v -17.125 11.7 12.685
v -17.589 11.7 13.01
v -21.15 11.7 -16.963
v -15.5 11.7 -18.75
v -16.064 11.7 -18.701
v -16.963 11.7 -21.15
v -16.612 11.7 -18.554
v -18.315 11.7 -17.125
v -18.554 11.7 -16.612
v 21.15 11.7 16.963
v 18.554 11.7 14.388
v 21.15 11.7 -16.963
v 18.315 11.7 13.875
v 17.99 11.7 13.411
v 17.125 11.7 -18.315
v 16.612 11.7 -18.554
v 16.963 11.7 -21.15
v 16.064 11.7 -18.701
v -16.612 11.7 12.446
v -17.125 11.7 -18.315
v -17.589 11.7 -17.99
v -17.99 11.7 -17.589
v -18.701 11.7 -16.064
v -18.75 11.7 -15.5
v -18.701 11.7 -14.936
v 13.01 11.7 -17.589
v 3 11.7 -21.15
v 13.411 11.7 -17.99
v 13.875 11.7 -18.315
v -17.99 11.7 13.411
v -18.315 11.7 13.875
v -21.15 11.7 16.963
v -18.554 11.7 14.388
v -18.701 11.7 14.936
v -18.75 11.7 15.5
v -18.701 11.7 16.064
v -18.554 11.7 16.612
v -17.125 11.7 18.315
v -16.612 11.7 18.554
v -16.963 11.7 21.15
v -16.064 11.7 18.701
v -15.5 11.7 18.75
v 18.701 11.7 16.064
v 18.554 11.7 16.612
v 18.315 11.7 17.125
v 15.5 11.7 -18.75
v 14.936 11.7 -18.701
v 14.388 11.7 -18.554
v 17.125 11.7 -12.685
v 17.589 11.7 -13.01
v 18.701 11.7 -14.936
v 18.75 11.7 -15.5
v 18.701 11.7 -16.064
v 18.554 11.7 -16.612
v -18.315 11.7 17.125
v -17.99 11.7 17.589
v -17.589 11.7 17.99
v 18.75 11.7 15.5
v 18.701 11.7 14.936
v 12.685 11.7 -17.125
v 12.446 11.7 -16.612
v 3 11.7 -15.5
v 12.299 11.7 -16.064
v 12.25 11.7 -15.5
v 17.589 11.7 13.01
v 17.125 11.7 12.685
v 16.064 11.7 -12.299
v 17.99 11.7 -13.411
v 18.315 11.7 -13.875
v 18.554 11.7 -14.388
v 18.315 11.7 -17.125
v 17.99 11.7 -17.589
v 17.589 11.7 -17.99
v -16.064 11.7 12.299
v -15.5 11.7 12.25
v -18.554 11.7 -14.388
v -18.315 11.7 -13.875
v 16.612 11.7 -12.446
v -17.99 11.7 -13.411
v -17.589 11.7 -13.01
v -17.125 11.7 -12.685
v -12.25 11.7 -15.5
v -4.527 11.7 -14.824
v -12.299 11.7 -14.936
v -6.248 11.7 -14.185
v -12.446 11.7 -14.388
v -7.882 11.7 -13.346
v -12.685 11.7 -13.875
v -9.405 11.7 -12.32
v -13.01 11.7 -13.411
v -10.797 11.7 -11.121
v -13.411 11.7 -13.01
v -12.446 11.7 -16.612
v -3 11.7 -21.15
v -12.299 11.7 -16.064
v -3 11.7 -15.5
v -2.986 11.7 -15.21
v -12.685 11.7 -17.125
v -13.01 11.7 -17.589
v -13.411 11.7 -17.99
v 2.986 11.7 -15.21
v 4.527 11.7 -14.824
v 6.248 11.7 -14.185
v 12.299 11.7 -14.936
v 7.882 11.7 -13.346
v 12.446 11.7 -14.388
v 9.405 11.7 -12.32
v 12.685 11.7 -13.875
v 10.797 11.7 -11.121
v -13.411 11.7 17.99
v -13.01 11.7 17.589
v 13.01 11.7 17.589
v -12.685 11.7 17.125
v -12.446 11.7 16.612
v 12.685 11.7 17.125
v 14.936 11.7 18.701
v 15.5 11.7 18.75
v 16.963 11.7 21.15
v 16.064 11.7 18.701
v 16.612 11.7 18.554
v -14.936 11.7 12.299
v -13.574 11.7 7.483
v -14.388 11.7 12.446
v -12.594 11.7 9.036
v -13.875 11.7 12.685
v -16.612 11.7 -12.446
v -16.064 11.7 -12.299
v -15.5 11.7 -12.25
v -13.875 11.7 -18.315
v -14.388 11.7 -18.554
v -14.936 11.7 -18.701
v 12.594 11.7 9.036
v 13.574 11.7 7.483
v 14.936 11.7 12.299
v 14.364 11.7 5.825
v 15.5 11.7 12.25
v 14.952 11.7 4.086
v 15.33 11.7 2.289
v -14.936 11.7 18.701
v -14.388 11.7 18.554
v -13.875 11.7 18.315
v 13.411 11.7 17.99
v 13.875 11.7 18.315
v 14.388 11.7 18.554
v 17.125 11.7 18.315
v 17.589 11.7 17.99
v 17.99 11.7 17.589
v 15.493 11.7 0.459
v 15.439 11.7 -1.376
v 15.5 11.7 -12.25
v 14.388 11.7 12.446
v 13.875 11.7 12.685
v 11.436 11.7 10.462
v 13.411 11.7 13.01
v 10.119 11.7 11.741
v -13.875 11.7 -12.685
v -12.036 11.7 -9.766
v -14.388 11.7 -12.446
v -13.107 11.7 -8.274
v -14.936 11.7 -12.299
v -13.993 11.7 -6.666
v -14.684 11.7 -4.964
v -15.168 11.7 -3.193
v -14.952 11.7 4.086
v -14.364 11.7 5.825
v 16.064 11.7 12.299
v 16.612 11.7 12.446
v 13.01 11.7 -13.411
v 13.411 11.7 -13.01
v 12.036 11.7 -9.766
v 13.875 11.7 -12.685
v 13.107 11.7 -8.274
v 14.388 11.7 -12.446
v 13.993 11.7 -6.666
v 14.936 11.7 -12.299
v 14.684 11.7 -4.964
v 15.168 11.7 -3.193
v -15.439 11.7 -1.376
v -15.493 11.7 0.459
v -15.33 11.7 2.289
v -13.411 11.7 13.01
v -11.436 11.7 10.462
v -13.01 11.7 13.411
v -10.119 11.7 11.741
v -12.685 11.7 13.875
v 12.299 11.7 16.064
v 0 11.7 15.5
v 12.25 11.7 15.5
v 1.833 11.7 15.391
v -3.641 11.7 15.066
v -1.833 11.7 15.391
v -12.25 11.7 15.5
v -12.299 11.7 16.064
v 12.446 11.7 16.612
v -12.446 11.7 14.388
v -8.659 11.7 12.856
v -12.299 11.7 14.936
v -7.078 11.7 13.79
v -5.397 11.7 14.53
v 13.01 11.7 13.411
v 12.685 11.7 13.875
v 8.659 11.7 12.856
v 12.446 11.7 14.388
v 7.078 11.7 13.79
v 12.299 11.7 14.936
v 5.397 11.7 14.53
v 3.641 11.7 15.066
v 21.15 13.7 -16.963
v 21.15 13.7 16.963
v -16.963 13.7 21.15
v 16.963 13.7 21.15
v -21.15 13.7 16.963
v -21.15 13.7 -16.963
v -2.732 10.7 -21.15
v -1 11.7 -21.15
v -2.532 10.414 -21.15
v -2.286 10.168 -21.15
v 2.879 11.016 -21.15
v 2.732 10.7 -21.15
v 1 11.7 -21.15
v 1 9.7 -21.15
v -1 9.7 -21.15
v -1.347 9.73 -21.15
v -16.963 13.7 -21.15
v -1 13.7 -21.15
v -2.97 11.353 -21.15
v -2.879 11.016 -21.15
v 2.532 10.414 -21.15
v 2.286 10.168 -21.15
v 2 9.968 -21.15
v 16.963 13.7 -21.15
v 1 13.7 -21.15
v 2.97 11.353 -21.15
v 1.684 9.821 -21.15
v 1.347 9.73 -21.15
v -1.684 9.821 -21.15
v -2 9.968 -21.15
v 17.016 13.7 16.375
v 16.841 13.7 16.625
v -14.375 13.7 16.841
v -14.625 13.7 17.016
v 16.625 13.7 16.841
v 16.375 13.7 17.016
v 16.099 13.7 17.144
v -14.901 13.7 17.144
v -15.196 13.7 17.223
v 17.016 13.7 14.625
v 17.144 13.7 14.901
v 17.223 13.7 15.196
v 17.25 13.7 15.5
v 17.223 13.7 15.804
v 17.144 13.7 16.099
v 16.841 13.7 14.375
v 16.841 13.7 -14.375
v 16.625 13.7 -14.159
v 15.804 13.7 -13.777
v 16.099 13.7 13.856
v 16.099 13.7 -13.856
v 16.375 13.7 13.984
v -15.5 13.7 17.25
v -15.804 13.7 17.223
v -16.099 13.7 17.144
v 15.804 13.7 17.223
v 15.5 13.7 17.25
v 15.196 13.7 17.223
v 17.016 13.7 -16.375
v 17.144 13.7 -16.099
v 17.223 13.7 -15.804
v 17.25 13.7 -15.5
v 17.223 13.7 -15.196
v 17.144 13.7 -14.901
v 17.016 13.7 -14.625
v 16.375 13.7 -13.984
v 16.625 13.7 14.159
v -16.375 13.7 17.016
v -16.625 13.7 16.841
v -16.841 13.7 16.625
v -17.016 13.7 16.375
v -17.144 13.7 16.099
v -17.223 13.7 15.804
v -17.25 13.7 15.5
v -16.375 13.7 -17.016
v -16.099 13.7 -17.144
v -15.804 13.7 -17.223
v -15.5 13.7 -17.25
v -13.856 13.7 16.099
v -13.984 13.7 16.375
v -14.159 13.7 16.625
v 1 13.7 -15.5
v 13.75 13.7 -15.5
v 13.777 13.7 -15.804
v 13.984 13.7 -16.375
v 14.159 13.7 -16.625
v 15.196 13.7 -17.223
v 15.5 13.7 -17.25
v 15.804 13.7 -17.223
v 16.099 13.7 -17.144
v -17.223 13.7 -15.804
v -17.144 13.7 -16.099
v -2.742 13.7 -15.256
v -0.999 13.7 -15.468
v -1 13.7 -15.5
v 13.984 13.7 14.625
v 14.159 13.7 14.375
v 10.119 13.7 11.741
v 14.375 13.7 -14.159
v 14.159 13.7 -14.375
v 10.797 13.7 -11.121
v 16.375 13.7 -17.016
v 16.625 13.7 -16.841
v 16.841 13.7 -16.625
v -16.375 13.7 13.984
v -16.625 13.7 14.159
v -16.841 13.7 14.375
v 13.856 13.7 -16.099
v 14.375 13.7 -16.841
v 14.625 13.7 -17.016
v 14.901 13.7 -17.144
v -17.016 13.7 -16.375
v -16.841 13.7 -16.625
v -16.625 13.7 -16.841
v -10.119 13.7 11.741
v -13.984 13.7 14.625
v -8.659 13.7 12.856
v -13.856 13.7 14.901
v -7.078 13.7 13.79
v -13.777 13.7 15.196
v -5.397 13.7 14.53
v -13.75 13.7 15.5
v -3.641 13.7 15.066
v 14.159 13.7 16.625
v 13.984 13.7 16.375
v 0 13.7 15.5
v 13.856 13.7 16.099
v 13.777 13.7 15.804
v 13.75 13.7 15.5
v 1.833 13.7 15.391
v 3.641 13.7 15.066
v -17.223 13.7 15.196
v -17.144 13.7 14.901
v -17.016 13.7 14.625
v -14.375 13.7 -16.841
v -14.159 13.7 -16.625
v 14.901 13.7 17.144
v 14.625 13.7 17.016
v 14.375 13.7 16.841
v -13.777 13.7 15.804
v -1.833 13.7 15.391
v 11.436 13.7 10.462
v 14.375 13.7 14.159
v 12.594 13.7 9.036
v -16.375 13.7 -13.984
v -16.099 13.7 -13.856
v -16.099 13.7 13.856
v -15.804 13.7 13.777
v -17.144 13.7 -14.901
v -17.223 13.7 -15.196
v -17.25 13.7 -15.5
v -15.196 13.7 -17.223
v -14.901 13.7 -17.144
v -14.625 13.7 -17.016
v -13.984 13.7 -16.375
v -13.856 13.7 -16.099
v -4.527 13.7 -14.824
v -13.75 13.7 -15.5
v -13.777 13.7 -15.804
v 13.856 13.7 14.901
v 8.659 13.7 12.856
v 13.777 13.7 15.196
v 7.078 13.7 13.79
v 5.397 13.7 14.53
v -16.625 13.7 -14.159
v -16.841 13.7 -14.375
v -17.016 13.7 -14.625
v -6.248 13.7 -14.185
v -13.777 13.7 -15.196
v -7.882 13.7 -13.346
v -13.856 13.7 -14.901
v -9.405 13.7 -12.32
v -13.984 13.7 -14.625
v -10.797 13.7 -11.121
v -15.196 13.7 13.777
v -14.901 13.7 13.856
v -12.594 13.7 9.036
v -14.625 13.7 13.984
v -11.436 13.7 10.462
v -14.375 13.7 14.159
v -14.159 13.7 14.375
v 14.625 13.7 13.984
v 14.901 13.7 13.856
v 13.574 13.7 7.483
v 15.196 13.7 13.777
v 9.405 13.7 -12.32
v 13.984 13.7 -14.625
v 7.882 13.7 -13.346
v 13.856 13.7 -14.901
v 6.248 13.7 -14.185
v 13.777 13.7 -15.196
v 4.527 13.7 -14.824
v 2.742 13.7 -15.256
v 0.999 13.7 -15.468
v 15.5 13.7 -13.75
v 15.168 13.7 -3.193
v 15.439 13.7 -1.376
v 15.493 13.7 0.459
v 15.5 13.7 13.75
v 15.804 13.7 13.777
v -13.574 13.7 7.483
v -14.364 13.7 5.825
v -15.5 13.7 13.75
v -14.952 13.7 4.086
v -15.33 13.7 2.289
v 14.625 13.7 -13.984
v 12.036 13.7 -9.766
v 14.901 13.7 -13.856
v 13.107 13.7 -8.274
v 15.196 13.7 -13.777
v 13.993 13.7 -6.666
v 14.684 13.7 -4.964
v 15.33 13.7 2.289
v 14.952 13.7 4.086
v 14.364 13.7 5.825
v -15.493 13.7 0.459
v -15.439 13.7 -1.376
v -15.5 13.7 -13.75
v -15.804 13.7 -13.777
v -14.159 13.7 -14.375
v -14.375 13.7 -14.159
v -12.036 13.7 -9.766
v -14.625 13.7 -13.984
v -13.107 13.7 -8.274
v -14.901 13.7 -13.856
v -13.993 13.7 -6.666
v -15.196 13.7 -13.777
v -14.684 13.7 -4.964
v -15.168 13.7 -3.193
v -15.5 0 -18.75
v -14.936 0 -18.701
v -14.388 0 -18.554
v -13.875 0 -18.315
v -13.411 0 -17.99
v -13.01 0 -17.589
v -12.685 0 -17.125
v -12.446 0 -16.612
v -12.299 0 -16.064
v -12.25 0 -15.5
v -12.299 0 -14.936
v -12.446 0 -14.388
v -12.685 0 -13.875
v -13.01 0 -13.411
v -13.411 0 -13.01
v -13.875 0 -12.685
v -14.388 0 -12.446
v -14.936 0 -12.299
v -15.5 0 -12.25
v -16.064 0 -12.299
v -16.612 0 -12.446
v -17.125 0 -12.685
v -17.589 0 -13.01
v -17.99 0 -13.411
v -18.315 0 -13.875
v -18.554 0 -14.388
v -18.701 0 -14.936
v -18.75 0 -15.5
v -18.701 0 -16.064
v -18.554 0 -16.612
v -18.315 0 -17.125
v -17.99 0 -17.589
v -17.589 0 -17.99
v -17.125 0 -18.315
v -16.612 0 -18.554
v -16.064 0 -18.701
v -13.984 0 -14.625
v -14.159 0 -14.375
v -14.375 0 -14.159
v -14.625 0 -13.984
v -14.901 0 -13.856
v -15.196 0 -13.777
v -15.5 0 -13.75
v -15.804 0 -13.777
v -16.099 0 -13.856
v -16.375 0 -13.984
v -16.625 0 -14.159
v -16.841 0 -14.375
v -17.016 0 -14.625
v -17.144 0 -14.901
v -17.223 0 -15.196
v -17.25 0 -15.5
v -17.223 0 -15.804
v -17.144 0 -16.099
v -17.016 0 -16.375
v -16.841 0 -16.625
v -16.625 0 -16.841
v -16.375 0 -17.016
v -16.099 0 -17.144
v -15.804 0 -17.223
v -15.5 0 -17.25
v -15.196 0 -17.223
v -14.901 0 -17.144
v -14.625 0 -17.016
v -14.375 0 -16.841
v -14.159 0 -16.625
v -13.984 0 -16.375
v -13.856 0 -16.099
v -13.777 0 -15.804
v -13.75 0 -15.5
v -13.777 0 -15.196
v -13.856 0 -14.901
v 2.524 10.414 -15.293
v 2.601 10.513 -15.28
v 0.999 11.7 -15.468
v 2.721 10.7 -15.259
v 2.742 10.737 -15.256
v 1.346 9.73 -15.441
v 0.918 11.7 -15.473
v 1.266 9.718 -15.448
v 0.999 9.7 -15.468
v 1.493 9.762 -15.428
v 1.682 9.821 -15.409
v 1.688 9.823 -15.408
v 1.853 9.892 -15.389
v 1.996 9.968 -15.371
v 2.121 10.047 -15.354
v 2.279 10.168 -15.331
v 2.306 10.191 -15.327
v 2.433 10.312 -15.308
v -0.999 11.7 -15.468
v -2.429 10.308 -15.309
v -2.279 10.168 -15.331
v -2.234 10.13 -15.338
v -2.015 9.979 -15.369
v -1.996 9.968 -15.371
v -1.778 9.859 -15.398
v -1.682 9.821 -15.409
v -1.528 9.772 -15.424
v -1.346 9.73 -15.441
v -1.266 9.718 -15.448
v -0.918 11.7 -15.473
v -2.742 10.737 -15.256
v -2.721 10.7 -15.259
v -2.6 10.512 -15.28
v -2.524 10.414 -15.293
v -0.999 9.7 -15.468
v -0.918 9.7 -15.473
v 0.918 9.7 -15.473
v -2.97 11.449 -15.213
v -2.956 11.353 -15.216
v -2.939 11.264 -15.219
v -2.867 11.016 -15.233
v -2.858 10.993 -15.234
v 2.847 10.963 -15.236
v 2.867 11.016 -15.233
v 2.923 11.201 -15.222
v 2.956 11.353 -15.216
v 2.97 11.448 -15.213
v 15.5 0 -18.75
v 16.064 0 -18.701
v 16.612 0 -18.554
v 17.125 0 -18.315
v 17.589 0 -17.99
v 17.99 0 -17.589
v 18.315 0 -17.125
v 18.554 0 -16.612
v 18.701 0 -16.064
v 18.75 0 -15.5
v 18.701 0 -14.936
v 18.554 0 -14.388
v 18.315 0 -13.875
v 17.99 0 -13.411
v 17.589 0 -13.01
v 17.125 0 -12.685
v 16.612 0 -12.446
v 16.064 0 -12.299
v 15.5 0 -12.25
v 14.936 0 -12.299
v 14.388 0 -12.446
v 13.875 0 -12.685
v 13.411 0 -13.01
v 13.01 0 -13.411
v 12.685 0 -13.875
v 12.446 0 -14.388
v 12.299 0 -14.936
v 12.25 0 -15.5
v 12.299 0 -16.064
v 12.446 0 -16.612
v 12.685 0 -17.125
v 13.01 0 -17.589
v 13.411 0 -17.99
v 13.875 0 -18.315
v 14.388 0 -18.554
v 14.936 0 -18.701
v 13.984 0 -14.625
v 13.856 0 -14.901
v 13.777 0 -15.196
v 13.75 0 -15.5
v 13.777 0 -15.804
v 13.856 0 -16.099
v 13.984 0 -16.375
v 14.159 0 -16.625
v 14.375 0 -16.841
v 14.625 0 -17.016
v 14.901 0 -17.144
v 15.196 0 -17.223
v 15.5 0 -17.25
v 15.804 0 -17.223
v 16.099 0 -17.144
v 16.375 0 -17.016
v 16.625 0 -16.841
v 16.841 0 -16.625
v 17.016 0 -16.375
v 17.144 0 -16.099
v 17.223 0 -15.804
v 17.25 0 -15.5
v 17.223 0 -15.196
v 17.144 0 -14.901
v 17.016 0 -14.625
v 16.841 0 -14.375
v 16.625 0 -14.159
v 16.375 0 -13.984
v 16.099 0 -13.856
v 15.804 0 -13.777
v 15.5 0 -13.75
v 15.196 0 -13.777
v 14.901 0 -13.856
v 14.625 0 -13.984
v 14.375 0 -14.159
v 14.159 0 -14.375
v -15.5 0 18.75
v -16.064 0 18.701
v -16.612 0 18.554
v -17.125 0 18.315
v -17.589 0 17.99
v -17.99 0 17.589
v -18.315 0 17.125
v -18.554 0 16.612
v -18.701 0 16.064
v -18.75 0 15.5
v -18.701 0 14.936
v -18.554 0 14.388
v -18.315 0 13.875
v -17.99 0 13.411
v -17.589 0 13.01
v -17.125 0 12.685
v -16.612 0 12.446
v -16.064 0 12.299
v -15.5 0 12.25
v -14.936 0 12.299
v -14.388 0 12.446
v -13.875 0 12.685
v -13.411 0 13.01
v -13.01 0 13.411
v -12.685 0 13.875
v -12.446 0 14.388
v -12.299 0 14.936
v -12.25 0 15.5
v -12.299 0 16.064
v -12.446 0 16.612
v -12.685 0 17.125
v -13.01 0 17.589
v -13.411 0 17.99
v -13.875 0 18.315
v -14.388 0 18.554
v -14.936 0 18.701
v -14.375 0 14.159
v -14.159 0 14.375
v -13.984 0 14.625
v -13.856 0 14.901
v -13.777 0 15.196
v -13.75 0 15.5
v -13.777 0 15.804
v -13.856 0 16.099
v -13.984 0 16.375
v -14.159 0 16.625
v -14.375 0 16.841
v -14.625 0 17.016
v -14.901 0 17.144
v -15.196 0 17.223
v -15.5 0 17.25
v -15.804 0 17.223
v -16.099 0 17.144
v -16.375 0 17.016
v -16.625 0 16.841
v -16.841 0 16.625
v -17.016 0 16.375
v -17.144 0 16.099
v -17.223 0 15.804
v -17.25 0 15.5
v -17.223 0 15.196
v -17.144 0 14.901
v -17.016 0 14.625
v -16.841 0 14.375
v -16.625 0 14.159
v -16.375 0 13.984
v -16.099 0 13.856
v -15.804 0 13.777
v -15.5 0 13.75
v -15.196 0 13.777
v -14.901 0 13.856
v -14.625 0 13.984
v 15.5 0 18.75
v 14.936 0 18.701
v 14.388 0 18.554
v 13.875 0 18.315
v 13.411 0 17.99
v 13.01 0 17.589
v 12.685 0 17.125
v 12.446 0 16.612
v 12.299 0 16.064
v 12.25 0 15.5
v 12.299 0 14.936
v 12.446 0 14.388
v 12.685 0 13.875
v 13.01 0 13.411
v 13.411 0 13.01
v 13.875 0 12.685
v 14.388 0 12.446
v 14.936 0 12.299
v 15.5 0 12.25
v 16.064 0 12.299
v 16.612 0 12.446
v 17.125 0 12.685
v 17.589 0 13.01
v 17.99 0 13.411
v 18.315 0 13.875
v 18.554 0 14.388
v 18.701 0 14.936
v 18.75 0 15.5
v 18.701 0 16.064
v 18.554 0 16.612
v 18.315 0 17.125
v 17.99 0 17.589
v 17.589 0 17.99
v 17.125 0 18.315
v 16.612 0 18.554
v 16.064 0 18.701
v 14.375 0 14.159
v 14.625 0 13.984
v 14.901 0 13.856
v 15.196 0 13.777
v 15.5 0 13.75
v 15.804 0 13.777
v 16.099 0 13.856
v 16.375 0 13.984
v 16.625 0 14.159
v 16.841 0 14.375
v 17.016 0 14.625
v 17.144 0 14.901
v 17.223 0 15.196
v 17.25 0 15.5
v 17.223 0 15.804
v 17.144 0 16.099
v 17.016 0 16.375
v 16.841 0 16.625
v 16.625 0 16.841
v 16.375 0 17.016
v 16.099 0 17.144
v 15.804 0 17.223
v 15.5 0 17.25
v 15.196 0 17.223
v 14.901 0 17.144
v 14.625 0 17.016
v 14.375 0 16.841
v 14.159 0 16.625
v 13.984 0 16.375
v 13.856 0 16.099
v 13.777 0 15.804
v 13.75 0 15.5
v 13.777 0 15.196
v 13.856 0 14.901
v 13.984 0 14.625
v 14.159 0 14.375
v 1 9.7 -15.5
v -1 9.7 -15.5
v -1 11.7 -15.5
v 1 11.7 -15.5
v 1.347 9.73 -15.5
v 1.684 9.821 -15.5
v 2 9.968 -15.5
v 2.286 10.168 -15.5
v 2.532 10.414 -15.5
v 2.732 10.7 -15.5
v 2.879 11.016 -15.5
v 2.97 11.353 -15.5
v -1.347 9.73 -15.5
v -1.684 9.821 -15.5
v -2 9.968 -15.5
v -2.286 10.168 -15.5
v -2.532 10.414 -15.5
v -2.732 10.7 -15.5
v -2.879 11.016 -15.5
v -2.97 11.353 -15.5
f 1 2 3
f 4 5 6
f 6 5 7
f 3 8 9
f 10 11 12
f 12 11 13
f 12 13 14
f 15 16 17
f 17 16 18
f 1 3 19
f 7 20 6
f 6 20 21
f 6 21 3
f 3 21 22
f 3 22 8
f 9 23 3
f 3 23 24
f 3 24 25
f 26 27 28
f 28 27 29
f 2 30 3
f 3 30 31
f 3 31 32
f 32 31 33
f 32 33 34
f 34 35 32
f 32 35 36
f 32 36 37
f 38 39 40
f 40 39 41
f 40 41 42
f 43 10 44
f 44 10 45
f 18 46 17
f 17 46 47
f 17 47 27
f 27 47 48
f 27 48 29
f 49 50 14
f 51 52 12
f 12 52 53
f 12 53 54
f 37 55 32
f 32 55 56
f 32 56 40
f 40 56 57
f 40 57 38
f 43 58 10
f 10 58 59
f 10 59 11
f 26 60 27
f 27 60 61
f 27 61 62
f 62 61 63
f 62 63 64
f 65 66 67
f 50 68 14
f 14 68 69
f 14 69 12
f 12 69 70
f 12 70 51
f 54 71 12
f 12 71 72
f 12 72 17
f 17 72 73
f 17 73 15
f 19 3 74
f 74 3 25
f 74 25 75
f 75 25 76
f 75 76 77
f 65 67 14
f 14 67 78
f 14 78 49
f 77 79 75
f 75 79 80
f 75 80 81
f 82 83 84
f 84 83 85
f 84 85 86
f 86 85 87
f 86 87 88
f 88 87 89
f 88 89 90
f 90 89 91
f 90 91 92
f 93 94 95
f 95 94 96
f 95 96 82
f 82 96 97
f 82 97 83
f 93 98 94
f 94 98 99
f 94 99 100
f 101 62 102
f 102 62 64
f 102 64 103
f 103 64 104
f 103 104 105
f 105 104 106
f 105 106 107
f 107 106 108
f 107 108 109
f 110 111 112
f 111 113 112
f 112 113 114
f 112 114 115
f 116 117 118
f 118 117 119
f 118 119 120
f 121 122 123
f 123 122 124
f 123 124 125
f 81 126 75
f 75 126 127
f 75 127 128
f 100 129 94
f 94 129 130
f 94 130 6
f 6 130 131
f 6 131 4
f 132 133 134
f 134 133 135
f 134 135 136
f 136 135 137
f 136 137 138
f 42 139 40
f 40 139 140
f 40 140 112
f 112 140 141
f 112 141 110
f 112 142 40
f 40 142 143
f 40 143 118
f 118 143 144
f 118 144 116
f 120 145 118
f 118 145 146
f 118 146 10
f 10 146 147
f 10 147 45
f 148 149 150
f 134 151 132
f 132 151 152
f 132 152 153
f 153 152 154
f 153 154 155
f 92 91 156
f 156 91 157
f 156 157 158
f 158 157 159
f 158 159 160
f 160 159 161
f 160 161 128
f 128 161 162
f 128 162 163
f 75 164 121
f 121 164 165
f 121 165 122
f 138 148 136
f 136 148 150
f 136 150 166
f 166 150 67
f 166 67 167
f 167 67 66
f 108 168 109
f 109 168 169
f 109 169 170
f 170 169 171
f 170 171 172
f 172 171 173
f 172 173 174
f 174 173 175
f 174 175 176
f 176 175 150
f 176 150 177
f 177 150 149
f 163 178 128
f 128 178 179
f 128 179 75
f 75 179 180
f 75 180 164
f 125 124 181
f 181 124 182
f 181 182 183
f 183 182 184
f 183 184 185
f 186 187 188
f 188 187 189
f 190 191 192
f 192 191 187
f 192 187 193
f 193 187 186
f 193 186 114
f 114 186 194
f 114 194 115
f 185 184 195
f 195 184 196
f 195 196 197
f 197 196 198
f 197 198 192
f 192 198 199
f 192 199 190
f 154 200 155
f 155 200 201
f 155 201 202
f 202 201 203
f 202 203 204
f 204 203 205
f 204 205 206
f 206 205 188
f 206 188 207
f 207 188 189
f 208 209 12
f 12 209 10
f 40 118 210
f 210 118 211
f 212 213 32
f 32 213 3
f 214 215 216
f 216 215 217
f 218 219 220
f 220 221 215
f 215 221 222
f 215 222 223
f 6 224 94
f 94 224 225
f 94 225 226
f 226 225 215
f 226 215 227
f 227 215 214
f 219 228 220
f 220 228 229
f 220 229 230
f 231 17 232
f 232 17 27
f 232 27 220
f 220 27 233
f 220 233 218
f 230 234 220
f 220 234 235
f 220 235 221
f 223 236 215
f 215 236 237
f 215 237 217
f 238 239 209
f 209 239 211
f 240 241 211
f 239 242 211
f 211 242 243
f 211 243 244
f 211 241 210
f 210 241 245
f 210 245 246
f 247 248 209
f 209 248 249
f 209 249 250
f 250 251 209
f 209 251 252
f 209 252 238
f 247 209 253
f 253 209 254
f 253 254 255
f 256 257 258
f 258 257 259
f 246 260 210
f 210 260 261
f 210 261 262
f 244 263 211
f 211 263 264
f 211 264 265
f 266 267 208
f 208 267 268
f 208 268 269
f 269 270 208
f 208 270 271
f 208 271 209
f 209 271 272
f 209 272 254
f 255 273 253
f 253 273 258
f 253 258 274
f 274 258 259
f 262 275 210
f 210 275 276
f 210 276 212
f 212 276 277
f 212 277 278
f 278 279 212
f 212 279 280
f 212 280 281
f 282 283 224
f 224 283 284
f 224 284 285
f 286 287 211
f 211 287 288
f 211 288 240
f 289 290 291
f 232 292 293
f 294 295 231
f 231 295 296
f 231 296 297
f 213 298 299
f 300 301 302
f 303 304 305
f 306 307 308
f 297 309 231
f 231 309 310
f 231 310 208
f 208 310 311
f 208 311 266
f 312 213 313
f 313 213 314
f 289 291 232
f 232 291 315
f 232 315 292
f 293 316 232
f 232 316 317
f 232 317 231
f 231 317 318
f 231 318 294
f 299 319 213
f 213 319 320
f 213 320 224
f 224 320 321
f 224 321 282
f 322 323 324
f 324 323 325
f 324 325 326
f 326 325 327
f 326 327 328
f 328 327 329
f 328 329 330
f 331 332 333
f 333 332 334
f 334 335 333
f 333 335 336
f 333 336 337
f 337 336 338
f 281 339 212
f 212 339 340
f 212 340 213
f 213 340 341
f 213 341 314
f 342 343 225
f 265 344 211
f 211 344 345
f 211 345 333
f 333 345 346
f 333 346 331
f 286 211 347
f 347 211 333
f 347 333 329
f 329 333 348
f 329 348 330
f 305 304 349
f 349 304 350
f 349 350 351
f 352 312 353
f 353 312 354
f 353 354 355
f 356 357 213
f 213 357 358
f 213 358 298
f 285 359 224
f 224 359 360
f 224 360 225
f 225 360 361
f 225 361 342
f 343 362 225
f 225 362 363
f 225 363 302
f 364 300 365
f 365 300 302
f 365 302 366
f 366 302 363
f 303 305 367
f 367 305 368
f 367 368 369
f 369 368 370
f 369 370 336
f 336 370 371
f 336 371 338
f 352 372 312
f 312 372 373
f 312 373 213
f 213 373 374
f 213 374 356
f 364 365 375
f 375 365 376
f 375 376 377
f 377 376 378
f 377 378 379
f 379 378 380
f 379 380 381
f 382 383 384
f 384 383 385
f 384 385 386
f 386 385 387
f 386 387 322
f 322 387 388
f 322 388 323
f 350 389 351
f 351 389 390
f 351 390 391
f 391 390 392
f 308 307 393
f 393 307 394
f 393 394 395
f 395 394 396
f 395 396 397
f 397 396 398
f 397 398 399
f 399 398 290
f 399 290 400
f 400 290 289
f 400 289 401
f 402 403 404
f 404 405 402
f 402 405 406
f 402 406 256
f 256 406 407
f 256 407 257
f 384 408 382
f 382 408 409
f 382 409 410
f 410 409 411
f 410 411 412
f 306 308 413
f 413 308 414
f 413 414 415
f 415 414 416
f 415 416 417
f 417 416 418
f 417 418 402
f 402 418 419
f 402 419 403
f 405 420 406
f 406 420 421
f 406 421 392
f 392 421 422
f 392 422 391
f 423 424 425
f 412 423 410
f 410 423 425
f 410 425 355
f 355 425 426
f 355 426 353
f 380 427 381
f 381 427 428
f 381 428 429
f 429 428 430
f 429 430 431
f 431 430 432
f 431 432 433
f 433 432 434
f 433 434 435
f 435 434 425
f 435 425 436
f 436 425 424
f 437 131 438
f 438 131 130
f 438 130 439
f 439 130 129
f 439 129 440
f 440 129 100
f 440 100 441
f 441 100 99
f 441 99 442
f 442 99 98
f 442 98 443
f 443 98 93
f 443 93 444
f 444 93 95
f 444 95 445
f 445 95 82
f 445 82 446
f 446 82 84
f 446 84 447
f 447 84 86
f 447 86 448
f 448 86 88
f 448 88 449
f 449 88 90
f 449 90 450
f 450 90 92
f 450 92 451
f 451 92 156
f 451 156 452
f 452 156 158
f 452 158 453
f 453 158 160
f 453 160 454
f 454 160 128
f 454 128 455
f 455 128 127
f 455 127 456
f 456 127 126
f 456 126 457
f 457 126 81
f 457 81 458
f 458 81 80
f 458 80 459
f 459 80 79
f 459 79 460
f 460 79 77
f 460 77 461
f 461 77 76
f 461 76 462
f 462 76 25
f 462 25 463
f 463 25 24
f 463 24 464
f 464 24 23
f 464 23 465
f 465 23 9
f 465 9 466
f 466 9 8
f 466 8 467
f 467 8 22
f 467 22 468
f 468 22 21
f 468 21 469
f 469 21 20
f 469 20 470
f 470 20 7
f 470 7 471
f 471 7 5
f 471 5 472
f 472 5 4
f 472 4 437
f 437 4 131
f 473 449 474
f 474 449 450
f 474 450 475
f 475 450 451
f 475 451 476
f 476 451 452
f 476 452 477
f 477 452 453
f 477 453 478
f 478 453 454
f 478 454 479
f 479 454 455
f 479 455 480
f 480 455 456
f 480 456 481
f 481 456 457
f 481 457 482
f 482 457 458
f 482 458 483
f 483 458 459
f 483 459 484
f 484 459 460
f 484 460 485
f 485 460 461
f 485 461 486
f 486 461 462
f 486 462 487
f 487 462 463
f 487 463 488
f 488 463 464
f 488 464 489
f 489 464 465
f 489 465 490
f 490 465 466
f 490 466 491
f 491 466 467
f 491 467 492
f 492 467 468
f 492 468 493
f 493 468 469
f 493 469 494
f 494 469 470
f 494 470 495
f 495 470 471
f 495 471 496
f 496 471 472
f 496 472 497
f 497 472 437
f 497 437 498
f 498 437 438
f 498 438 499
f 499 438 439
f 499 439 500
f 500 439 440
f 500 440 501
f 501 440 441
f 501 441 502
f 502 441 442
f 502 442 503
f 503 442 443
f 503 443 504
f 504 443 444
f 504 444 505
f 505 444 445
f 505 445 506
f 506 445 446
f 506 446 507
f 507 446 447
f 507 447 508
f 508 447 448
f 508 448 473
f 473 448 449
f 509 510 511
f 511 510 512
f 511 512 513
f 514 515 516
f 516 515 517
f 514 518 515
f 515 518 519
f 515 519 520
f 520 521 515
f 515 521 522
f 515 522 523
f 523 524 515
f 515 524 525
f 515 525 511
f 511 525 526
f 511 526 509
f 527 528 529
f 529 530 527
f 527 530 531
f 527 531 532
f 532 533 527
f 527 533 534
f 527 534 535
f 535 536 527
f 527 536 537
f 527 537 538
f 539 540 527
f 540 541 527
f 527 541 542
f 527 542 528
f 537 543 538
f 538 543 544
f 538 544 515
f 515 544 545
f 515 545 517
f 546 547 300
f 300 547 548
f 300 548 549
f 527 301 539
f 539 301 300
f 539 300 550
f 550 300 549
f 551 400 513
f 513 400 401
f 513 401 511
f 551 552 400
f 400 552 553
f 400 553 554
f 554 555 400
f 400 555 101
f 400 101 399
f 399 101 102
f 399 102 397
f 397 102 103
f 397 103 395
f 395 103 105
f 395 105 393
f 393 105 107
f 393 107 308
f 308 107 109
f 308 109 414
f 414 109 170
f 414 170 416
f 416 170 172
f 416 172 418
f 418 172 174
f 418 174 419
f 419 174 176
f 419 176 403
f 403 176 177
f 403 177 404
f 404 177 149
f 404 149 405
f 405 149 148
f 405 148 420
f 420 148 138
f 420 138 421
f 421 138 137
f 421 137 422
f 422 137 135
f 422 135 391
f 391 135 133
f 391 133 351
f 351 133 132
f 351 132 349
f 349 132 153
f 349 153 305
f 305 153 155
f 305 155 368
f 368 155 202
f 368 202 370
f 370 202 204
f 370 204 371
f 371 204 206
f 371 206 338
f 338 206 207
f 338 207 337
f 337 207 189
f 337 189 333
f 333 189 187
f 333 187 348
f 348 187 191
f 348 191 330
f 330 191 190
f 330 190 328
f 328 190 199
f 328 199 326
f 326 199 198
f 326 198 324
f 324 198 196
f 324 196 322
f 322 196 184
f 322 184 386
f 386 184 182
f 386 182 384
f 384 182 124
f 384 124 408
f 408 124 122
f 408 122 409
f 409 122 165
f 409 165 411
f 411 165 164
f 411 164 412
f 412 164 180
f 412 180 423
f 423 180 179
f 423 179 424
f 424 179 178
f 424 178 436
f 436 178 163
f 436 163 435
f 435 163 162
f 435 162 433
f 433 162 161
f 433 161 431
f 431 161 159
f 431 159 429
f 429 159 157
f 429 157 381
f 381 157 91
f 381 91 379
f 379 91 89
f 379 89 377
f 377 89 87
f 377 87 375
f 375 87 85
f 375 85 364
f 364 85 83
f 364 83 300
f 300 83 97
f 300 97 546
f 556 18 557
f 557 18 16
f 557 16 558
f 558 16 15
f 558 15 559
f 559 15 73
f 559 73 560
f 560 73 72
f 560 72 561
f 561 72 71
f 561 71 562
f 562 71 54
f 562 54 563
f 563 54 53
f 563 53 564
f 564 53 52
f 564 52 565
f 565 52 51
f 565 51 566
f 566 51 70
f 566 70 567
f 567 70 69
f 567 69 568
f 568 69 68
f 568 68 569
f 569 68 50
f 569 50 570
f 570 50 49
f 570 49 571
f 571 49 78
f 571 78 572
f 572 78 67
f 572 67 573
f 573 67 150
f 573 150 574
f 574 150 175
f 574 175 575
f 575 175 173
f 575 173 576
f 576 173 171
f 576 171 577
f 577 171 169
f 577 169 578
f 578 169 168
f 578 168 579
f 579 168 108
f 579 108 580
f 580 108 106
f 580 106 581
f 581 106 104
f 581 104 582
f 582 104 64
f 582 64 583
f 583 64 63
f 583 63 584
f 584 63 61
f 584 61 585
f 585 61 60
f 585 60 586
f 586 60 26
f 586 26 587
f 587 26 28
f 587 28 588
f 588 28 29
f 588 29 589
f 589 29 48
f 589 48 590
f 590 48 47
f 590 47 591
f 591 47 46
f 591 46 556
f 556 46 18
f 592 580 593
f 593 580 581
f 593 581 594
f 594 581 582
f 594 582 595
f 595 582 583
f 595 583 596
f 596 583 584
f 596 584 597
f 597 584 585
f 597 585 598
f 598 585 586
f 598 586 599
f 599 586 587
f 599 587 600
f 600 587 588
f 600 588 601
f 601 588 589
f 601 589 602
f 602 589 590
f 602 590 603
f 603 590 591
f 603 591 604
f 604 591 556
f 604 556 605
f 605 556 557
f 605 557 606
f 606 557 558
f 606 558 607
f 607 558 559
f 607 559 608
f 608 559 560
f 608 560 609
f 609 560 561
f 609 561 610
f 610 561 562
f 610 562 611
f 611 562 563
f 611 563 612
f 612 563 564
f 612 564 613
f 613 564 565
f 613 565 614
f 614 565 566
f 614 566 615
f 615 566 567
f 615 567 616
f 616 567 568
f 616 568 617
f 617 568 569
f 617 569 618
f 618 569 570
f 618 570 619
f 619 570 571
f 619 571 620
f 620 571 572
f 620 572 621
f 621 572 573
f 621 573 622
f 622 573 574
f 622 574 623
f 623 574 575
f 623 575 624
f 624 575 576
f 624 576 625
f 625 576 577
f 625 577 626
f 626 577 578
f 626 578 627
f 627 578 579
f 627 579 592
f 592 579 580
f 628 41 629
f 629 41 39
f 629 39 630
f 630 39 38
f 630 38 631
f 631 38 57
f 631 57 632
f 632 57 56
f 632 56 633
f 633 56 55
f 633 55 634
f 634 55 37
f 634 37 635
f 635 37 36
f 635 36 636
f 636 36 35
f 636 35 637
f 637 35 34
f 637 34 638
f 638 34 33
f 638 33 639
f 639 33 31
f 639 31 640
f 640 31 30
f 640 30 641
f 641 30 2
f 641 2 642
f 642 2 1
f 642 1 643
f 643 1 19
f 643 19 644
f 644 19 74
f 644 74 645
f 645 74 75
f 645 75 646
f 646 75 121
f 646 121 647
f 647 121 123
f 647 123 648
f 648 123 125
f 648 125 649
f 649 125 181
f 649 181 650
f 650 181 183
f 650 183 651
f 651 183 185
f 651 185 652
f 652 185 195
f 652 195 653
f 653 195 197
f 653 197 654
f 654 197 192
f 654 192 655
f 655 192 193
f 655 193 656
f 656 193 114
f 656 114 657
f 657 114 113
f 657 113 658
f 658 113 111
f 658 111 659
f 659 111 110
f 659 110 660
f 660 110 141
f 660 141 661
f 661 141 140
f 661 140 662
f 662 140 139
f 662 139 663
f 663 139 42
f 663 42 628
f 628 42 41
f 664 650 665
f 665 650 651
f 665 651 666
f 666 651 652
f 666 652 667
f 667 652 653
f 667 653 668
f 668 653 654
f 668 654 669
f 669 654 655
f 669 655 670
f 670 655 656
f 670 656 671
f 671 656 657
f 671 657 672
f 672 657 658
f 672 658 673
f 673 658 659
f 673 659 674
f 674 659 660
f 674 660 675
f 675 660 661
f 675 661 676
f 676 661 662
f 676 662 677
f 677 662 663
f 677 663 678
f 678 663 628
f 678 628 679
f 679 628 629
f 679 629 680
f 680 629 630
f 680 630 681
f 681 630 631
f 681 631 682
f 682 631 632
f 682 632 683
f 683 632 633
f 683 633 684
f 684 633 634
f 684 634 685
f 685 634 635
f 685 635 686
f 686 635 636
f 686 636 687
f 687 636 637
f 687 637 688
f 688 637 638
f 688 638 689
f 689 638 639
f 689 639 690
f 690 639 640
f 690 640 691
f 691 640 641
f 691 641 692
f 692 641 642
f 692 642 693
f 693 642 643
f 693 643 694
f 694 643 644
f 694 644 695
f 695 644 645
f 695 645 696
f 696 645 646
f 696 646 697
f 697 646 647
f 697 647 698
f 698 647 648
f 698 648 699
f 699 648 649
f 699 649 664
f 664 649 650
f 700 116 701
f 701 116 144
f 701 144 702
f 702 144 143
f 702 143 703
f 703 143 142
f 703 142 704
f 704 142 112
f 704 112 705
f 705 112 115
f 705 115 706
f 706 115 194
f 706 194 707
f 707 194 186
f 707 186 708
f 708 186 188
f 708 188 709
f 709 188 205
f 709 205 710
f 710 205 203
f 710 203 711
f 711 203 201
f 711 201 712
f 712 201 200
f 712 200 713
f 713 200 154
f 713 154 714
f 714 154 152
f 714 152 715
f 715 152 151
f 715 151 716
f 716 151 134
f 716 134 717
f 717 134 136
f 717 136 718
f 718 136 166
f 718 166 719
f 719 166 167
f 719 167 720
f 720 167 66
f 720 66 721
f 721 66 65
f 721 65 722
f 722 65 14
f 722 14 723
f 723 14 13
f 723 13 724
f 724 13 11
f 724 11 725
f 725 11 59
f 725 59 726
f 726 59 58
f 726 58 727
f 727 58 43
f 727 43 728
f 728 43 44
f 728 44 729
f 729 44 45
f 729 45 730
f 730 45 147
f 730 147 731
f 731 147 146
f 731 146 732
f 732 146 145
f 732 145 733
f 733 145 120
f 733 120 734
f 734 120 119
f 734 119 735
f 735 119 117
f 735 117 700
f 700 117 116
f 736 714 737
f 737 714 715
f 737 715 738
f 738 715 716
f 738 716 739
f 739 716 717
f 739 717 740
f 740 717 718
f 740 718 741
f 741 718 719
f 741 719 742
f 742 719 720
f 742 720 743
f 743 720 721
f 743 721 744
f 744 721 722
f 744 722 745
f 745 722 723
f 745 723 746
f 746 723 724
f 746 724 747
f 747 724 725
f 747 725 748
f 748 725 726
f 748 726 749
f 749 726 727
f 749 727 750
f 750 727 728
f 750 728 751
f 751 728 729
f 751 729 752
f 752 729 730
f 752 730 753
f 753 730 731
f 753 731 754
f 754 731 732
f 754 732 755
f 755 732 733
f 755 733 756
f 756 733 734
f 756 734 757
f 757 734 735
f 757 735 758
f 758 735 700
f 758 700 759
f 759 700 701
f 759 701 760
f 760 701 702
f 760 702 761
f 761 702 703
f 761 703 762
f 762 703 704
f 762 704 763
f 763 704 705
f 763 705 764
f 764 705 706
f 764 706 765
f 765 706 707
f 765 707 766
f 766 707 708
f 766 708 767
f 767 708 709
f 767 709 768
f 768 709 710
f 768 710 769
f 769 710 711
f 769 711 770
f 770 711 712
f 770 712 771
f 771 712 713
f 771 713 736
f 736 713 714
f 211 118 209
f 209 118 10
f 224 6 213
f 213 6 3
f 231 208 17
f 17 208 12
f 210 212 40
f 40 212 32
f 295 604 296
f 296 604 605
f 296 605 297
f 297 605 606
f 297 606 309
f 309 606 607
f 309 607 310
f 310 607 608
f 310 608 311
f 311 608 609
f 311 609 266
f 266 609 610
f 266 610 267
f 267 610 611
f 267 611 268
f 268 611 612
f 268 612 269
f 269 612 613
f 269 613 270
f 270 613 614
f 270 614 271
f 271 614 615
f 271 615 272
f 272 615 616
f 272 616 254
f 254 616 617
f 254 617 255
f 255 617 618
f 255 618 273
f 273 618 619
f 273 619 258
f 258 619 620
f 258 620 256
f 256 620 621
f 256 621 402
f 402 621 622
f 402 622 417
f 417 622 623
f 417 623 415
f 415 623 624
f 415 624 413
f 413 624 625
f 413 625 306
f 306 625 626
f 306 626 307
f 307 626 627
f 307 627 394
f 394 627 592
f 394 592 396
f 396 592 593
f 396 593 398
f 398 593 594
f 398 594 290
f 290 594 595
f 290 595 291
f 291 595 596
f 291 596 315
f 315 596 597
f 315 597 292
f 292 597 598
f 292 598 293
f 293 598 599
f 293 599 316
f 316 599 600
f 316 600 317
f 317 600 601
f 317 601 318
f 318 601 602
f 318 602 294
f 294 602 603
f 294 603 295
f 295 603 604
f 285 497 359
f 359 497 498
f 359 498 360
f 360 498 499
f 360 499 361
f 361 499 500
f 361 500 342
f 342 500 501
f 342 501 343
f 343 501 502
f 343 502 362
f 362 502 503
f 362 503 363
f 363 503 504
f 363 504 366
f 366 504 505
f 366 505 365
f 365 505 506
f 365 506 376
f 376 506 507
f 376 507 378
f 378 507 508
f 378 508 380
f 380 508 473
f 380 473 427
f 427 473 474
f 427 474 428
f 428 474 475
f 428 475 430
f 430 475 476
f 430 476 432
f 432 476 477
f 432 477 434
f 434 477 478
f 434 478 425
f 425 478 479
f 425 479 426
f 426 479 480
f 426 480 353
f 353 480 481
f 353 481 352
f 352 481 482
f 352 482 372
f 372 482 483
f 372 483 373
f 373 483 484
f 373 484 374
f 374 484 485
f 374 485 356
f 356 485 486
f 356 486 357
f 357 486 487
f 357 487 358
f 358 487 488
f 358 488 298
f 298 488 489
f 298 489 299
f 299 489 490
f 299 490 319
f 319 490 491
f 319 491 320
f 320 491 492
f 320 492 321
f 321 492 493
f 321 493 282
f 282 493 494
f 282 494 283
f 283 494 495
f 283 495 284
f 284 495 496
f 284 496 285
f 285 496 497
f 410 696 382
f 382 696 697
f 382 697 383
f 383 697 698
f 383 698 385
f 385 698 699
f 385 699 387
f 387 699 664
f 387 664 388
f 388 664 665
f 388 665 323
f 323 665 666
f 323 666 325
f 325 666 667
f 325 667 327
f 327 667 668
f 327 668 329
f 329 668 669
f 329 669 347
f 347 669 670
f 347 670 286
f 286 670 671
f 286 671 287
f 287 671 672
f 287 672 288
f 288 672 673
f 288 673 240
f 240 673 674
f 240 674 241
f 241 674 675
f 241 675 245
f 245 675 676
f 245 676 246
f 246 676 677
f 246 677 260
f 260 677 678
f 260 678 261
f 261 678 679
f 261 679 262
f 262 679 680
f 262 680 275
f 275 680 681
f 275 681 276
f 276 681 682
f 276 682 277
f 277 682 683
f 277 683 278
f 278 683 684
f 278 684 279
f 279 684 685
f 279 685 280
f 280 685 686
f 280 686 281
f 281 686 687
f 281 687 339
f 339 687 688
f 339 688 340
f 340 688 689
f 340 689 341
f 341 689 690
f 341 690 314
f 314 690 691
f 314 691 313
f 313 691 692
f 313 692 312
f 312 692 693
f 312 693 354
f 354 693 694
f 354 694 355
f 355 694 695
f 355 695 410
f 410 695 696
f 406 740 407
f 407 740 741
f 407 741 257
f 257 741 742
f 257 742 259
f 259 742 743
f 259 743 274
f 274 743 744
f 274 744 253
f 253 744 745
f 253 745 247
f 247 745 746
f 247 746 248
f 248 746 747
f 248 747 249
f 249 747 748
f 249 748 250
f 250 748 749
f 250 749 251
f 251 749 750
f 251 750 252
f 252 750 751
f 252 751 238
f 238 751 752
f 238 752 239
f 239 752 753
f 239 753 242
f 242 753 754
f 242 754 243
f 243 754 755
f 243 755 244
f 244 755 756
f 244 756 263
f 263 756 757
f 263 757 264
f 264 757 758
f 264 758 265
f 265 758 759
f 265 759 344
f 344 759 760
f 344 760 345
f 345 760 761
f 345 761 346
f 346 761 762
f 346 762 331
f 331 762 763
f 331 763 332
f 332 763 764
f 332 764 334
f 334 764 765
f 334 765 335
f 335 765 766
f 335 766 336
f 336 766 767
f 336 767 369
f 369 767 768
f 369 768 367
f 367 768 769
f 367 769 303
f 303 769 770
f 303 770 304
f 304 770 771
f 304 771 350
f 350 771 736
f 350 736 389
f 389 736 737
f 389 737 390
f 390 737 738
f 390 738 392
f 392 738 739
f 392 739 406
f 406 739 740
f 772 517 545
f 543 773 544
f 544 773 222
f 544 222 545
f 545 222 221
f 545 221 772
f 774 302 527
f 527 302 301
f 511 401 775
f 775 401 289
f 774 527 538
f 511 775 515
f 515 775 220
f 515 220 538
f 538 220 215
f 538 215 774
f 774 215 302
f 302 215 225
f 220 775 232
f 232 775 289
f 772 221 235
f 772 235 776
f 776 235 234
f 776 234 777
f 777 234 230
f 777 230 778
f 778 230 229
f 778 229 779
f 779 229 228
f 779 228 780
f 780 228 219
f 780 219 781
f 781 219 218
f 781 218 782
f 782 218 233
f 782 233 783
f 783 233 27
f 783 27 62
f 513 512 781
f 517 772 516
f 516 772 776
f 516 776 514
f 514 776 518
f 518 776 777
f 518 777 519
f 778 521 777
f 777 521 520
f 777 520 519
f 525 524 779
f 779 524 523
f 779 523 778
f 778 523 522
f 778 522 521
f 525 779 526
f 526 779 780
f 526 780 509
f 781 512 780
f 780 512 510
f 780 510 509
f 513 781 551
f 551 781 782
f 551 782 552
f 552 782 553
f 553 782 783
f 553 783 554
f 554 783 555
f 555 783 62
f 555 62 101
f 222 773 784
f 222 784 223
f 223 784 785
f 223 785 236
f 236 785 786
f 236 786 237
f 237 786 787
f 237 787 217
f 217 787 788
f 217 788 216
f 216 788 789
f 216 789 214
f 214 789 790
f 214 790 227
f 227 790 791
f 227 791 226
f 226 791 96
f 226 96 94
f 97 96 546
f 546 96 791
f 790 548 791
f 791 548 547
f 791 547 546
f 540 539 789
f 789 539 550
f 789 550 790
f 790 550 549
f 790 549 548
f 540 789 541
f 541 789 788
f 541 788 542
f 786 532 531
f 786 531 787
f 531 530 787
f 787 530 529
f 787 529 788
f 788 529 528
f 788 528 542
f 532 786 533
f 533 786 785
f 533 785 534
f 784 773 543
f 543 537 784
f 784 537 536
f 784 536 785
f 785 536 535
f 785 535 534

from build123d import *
from build123d.topology import SkipClean

# Parameters (mm, degrees)
SKETCH1_R               = 3.25
BOSS_EXTRUDE1_DEPTH     = 13.7
SKETCH2_W               = 42.3
SKETCH2_H               = 42.3
SKETCH2_R               = 15.5
BOSS_EXTRUDE2_DEPTH     = 2
CUT_EXTRUDE1_DEPTH      = 33.898860163
SKETCH4_R               = 1.75
CUT_EXTRUDE2_DEPTH      = 33.898860163
MIRROR6_COPY_1_SKETCH_R = 1.75
MIRROR6_COPY_1_DEPTH    = 33.898860163
BOSS_EXTRUDE3_DEPTH     = 2
CUT_EXTRUDE3_DEPTH      = 2
FILLET1_R               = 2


with BuildPart() as part:
    # Sketch1 → Boss-Extrude1 (new body)
    with BuildSketch(Plane(origin=(0, 0, 0), x_dir=(1, 0, 0), z_dir=(0, 1, 0))):
        with Locations(Location((-15.5, 15.5, 0), (0, 0, 270))):
            Circle(SKETCH1_R)
    extrude(amount=BOSS_EXTRUDE1_DEPTH)


with BuildPart() as body_2:
    # Mirror2: mirrored copy
    add(part.part.mirror(Plane(origin=(0, 0, 0), x_dir=(0, 0, 1), z_dir=(1, 0, 0))))


with BuildPart() as body_3:
    # Mirror3: mirrored copy
    add(part.part.mirror(Plane.XY))


with BuildPart() as body_4:
    # Mirror3 2: mirrored copy
    add(body_2.part.mirror(Plane.XY))


with BuildPart() as part_1:
    add(part.part)

    add(body_2.part)  # Boss-Extrude2 merges body 2

    add(body_3.part)  # Boss-Extrude2 merges body 3

    add(body_4.part)  # Boss-Extrude2 merges body 4
    # Sketch2 → Boss-Extrude2 (add)
    with BuildSketch(Plane(origin=(0, 13.7, 0), x_dir=(1, 0, 0), z_dir=(0, 1, 0))):
        Rectangle(SKETCH2_W, SKETCH2_H)
        with Locations(Location((0, 0, 0), (0, 0, 270))):
            Circle(SKETCH2_R, mode=Mode.SUBTRACT)
    extrude(amount=-BOSS_EXTRUDE2_DEPTH)

    # Sketch3 → Cut-Extrude1 (cut, through all)
    with BuildSketch(Plane(origin=(0, 13.7, 0), x_dir=(1, 0, 0), z_dir=(0, 1, 0))):
        Polygon((-16.963055506, 21.15), (-21.15, 16.963055506), (-21.15, 21.15), align=None)
        Polygon((16.963055506, -21.15), (21.15, -16.963055506), (21.15, -21.15), align=None)
    cut_extrude1 = extrude(amount=-CUT_EXTRUDE1_DEPTH, mode=Mode.SUBTRACT)

    # Mirror4: Cut-Extrude1 across plane
    add(cut_extrude1.mirror(Plane.XY), mode=Mode.SUBTRACT)

    # Sketch4 → Cut-Extrude2 (cut, through all)
    with BuildSketch(Plane.XZ):
        with Locations(Location((15.5, -15.5, 0), (0, 0, 270))):
            Circle(SKETCH4_R)
    cut_extrude2 = extrude(amount=-CUT_EXTRUDE2_DEPTH, mode=Mode.SUBTRACT)

    # Mirror5: Cut-Extrude2 across plane
    add(cut_extrude2.mirror(Plane(origin=(0, 0, 0), x_dir=(0, 0, 1), z_dir=(1, 0, 0))), mode=Mode.SUBTRACT)

    # Mirror6: Cut-Extrude2 across plane
    add(cut_extrude2.mirror(Plane.XY), mode=Mode.SUBTRACT)

    # Mirror6 copy 1 sketch → Mirror6 copy 1 (cut, through all)
    with BuildSketch(Plane(origin=(0, 0, 0), x_dir=(-1, 0, 0), z_dir=(0, -1, 0))):
        with Locations(Location((15.5, -15.5, 0), (0, 0, 270))):
            Circle(MIRROR6_COPY_1_SKETCH_R)
    extrude(amount=-MIRROR6_COPY_1_DEPTH, mode=Mode.SUBTRACT)

    # Sketch6 → Boss-Extrude3 (add)
    with SkipClean():  # the faces are left unmerged after this step: merging them gives an invalid solid
        with BuildSketch(Plane.XZ.offset(-11.7)):
            with BuildLine():
                Line((-3, -21.15), (-3, -15.5))
                ThreePointArc((-3, -15.5), (-2.996477704, -15.354668076), (-2.985919088, -15.209677419))
                ThreePointArc((-2.985919088, -15.209677419), (0, -15.5), (2.985919088, -15.209677419))
                ThreePointArc((2.985919088, -15.209677419), (2.996477704, -15.354668076), (3, -15.5))
                Line((3, -15.5), (3, -21.15))
                Line((3, -21.15), (-3, -21.15))
            make_face()
        extrude(amount=BOSS_EXTRUDE3_DEPTH)

    # Sketch7 → Cut-Extrude3 (cut)
    with SkipClean():  # the faces are left unmerged after this step: merging them gives an invalid solid
        with BuildSketch(Plane(origin=(0, 13.7, 0), x_dir=(1, 0, 0), z_dir=(0, 1, 0))):
            with BuildLine():
                Line((-1, 15.5), (-1, 21.15))
                ThreePointArc((-1, 21.15), (0, 22.15), (1, 21.15))
                Line((1, 21.15), (1, 15.5))
                ThreePointArc((1, 15.5), (0, 14.5), (-1, 15.5))
            make_face()
        extrude(amount=-CUT_EXTRUDE3_DEPTH, mode=Mode.SUBTRACT)

    # Fillet1
    fillet1_edges = [part_1.edges().sort_by_distance(p)[0] for p in [
        (2.996477704, 9.7, -15.354668076),
        (-2.996477704, 9.7, -15.354668076),
        (3, 9.7, -18.325),
        (-3, 9.7, -18.325),
    ]]
    fillet(fillet1_edges, radius=FILLET1_R - 0.0001)  # a hair under: the kernel refuses the full size


solid = part_1.part
